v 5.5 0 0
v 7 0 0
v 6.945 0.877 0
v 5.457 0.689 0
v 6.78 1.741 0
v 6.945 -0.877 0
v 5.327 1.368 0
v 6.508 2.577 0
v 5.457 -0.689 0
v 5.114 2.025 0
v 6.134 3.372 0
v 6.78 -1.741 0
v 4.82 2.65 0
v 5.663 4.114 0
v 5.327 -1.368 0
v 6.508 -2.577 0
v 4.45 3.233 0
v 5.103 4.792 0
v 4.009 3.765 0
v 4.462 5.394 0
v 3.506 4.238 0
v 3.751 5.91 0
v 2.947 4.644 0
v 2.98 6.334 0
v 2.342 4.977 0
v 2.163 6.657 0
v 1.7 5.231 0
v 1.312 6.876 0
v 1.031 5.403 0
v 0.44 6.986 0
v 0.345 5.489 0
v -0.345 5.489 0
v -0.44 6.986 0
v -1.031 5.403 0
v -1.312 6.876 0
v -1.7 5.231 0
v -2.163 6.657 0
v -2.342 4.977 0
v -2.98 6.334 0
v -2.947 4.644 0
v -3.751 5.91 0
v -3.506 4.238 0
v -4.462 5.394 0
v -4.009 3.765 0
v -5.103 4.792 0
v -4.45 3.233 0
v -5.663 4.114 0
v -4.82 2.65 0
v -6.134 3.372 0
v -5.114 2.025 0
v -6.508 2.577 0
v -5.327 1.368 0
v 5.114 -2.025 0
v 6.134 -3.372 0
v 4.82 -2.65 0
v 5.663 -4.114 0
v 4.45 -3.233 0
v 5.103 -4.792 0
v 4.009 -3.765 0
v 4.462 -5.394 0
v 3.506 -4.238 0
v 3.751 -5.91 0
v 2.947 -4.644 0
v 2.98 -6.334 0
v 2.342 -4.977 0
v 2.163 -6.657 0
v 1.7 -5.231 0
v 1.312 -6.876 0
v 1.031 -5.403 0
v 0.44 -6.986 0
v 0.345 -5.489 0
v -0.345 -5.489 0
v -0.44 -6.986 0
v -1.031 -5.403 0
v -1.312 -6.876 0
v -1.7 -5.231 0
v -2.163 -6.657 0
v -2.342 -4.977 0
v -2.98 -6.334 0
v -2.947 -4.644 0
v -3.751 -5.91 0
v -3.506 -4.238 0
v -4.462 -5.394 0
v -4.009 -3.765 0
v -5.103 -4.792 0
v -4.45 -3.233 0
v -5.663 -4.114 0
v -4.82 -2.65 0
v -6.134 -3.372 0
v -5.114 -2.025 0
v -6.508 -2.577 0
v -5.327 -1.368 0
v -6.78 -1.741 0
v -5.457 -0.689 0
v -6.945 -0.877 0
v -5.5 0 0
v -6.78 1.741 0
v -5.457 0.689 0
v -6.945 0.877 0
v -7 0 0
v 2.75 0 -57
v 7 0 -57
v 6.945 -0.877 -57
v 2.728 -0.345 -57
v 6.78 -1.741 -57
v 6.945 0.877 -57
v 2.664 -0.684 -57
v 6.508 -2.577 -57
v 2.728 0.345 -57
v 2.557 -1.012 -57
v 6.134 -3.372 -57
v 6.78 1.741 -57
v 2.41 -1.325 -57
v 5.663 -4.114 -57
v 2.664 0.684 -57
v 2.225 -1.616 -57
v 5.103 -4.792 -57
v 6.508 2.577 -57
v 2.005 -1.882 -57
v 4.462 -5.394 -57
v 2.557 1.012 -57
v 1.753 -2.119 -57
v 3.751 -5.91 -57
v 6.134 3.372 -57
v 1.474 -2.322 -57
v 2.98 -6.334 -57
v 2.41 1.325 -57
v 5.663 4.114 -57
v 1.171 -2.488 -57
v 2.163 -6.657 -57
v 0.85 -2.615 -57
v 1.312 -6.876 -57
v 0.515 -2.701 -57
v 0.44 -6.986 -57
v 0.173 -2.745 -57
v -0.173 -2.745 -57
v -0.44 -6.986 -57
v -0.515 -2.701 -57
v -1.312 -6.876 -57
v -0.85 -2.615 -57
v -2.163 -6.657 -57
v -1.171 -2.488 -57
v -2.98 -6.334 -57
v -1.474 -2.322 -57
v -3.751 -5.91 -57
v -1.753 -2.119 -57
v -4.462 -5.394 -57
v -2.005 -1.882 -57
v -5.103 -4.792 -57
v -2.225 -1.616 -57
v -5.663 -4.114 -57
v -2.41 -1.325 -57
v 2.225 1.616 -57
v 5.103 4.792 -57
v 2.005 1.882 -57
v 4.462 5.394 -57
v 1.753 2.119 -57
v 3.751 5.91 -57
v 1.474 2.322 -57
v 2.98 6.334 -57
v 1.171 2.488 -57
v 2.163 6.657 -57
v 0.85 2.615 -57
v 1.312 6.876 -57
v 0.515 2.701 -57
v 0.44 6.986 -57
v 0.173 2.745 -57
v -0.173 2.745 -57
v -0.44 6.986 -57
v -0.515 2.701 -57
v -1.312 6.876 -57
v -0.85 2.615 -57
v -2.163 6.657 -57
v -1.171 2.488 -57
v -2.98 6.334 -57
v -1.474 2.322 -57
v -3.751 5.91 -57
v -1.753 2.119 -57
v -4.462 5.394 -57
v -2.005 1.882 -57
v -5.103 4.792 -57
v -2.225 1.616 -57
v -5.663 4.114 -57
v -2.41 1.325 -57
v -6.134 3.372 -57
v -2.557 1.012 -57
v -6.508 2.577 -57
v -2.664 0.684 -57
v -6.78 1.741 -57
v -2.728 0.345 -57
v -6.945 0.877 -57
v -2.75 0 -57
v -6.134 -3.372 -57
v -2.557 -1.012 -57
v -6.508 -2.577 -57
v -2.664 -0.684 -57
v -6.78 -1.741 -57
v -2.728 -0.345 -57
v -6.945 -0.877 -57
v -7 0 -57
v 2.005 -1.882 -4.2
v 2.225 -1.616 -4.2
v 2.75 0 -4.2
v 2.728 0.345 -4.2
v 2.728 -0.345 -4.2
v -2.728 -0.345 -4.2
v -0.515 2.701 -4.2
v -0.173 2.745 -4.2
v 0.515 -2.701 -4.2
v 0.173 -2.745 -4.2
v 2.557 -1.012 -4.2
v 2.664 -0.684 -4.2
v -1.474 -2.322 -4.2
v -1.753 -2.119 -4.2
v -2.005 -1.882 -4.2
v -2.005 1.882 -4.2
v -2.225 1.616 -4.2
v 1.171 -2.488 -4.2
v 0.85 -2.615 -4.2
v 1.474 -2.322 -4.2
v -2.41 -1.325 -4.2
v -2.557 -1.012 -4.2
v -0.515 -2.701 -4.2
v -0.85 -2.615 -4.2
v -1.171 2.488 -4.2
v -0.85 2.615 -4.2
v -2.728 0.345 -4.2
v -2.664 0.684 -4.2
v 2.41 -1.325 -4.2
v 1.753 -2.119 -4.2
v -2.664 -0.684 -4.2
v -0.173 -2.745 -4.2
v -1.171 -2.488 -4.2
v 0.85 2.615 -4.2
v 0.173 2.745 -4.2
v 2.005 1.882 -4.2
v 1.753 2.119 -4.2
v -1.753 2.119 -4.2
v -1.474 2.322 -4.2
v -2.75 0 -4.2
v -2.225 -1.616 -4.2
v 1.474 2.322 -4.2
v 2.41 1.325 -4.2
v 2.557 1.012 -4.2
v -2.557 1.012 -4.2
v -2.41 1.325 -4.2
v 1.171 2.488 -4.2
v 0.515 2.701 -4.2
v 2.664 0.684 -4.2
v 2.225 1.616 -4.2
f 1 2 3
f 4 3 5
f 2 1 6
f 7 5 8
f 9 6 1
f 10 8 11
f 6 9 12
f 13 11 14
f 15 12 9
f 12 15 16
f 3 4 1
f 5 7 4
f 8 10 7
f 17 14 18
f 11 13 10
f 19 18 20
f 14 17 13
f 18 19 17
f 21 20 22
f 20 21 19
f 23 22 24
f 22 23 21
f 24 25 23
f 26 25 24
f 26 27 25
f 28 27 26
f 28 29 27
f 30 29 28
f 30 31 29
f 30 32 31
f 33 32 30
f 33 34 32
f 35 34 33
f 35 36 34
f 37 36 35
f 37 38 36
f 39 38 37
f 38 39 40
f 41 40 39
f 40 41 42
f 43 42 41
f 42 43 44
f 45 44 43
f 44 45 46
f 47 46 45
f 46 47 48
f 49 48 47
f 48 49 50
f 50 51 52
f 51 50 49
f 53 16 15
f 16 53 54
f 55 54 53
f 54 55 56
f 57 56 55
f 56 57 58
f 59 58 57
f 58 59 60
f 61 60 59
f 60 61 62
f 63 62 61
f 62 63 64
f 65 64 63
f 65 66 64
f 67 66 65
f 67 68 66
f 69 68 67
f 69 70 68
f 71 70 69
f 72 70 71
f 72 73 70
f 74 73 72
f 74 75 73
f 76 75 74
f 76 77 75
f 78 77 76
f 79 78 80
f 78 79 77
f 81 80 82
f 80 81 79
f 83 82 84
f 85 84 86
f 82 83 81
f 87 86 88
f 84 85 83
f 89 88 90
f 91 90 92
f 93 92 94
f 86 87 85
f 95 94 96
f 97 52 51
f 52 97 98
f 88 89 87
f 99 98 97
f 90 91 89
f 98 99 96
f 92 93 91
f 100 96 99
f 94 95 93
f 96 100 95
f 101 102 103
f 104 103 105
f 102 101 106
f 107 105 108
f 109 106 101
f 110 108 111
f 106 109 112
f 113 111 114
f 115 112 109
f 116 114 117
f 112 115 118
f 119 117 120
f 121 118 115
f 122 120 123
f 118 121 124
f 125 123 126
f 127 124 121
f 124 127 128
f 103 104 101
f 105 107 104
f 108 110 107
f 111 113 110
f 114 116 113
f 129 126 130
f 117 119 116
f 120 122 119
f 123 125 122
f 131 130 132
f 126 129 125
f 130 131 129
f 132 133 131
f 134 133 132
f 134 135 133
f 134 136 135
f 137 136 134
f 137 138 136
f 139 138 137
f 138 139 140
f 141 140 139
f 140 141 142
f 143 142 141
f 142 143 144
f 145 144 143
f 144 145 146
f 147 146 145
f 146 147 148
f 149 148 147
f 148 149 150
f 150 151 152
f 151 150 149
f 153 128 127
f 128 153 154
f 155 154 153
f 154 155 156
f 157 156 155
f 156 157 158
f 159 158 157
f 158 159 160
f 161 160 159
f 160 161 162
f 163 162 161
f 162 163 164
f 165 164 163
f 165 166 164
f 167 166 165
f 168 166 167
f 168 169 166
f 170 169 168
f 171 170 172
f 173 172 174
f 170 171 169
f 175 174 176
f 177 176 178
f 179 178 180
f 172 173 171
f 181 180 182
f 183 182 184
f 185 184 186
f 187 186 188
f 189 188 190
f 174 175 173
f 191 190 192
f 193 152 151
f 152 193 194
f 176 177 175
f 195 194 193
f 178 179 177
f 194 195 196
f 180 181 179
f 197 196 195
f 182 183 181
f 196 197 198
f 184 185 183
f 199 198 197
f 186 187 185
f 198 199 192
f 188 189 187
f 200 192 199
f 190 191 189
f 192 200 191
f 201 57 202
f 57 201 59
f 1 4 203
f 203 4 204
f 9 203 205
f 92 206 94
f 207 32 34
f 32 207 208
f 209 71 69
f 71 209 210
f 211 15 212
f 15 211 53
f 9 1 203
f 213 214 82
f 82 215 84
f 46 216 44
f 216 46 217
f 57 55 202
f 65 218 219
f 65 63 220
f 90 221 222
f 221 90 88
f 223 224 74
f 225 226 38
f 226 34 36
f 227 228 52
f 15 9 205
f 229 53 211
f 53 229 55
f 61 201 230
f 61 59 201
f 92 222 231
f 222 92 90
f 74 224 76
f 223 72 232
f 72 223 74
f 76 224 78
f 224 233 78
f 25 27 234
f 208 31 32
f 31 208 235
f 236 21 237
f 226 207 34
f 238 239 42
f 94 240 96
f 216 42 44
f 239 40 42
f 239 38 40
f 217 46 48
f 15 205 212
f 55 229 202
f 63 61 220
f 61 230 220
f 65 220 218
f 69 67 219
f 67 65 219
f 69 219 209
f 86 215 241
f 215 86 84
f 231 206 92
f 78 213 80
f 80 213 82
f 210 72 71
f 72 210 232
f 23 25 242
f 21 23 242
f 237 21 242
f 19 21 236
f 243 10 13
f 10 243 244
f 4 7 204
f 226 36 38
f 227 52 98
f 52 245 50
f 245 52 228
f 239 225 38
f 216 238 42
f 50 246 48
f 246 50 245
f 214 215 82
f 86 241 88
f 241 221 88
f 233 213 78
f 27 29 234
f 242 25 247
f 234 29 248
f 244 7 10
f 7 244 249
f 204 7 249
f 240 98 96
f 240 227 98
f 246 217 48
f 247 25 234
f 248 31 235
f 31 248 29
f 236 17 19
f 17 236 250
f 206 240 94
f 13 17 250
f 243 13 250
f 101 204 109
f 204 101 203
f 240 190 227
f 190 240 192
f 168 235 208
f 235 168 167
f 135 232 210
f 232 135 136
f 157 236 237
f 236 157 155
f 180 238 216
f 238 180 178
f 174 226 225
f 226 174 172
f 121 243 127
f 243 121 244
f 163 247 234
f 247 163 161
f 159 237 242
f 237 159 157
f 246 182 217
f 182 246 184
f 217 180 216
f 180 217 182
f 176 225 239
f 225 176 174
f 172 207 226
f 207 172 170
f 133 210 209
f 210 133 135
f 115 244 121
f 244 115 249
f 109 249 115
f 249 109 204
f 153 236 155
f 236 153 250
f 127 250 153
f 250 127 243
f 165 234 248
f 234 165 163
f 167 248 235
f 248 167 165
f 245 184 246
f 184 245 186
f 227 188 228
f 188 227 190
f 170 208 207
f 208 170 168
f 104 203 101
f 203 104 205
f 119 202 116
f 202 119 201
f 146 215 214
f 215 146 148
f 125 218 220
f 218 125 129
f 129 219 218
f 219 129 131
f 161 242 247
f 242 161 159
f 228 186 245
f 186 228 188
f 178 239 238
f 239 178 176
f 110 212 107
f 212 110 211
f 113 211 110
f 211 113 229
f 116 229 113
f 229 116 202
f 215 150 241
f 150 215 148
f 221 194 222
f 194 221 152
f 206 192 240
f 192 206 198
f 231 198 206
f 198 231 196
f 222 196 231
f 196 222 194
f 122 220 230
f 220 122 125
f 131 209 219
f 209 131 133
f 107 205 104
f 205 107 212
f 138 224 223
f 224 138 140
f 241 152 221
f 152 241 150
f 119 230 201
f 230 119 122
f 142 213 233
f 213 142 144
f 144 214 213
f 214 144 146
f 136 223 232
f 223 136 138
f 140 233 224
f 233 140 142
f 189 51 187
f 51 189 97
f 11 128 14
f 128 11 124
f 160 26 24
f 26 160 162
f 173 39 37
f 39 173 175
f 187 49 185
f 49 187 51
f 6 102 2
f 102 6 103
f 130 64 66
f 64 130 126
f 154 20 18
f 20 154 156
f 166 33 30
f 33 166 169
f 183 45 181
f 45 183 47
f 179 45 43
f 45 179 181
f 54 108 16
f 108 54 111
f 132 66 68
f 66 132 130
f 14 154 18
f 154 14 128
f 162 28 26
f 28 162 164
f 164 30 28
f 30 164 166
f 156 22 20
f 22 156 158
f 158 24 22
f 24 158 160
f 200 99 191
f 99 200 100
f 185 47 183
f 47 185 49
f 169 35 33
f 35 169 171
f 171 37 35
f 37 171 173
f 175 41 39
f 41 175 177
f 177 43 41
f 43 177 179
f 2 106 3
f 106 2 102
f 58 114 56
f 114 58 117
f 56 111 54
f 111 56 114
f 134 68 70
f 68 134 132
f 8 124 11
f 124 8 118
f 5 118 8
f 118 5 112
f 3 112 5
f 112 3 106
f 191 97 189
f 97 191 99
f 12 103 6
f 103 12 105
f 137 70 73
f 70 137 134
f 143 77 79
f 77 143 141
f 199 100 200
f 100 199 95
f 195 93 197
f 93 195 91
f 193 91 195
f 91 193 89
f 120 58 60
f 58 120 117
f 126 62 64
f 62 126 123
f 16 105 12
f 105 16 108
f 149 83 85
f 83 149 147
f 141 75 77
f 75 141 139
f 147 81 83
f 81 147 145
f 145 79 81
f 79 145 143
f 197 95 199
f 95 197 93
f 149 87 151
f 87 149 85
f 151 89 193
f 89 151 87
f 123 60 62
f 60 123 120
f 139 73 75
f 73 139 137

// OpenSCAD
$fn = 50;


difference() {
	union() {
		translate(v = [0, 0, -57.0000000000]) {
			cylinder(h = 57, r = 7.0000000000);
		}
	}
	union() {
		translate(v = [0, 0, 0]) {
			rotate(a = [0, 0, 0]) {
				difference() {
					union() {
						#translate(v = [0, 0, -57.0000000000]) {
							cylinder(h = 57, r = 2.2500000000);
						}
						#translate(v = [0, 0, -4.2000000000]) {
							cylinder(h = 4.2000000000, r = 7.0000000000, r1 = 2.7500000000, r2 = 5.5000000000);
						}
						#translate(v = [0, 0, -57.0000000000]) {
							cylinder(h = 57, r = 2.7500000000);
						}
						#translate(v = [0, 0, -57.0000000000]) {
							cylinder(h = 57, r = 2.2500000000);
						}
					}
					union();
				}
			}
		}
	}
}
